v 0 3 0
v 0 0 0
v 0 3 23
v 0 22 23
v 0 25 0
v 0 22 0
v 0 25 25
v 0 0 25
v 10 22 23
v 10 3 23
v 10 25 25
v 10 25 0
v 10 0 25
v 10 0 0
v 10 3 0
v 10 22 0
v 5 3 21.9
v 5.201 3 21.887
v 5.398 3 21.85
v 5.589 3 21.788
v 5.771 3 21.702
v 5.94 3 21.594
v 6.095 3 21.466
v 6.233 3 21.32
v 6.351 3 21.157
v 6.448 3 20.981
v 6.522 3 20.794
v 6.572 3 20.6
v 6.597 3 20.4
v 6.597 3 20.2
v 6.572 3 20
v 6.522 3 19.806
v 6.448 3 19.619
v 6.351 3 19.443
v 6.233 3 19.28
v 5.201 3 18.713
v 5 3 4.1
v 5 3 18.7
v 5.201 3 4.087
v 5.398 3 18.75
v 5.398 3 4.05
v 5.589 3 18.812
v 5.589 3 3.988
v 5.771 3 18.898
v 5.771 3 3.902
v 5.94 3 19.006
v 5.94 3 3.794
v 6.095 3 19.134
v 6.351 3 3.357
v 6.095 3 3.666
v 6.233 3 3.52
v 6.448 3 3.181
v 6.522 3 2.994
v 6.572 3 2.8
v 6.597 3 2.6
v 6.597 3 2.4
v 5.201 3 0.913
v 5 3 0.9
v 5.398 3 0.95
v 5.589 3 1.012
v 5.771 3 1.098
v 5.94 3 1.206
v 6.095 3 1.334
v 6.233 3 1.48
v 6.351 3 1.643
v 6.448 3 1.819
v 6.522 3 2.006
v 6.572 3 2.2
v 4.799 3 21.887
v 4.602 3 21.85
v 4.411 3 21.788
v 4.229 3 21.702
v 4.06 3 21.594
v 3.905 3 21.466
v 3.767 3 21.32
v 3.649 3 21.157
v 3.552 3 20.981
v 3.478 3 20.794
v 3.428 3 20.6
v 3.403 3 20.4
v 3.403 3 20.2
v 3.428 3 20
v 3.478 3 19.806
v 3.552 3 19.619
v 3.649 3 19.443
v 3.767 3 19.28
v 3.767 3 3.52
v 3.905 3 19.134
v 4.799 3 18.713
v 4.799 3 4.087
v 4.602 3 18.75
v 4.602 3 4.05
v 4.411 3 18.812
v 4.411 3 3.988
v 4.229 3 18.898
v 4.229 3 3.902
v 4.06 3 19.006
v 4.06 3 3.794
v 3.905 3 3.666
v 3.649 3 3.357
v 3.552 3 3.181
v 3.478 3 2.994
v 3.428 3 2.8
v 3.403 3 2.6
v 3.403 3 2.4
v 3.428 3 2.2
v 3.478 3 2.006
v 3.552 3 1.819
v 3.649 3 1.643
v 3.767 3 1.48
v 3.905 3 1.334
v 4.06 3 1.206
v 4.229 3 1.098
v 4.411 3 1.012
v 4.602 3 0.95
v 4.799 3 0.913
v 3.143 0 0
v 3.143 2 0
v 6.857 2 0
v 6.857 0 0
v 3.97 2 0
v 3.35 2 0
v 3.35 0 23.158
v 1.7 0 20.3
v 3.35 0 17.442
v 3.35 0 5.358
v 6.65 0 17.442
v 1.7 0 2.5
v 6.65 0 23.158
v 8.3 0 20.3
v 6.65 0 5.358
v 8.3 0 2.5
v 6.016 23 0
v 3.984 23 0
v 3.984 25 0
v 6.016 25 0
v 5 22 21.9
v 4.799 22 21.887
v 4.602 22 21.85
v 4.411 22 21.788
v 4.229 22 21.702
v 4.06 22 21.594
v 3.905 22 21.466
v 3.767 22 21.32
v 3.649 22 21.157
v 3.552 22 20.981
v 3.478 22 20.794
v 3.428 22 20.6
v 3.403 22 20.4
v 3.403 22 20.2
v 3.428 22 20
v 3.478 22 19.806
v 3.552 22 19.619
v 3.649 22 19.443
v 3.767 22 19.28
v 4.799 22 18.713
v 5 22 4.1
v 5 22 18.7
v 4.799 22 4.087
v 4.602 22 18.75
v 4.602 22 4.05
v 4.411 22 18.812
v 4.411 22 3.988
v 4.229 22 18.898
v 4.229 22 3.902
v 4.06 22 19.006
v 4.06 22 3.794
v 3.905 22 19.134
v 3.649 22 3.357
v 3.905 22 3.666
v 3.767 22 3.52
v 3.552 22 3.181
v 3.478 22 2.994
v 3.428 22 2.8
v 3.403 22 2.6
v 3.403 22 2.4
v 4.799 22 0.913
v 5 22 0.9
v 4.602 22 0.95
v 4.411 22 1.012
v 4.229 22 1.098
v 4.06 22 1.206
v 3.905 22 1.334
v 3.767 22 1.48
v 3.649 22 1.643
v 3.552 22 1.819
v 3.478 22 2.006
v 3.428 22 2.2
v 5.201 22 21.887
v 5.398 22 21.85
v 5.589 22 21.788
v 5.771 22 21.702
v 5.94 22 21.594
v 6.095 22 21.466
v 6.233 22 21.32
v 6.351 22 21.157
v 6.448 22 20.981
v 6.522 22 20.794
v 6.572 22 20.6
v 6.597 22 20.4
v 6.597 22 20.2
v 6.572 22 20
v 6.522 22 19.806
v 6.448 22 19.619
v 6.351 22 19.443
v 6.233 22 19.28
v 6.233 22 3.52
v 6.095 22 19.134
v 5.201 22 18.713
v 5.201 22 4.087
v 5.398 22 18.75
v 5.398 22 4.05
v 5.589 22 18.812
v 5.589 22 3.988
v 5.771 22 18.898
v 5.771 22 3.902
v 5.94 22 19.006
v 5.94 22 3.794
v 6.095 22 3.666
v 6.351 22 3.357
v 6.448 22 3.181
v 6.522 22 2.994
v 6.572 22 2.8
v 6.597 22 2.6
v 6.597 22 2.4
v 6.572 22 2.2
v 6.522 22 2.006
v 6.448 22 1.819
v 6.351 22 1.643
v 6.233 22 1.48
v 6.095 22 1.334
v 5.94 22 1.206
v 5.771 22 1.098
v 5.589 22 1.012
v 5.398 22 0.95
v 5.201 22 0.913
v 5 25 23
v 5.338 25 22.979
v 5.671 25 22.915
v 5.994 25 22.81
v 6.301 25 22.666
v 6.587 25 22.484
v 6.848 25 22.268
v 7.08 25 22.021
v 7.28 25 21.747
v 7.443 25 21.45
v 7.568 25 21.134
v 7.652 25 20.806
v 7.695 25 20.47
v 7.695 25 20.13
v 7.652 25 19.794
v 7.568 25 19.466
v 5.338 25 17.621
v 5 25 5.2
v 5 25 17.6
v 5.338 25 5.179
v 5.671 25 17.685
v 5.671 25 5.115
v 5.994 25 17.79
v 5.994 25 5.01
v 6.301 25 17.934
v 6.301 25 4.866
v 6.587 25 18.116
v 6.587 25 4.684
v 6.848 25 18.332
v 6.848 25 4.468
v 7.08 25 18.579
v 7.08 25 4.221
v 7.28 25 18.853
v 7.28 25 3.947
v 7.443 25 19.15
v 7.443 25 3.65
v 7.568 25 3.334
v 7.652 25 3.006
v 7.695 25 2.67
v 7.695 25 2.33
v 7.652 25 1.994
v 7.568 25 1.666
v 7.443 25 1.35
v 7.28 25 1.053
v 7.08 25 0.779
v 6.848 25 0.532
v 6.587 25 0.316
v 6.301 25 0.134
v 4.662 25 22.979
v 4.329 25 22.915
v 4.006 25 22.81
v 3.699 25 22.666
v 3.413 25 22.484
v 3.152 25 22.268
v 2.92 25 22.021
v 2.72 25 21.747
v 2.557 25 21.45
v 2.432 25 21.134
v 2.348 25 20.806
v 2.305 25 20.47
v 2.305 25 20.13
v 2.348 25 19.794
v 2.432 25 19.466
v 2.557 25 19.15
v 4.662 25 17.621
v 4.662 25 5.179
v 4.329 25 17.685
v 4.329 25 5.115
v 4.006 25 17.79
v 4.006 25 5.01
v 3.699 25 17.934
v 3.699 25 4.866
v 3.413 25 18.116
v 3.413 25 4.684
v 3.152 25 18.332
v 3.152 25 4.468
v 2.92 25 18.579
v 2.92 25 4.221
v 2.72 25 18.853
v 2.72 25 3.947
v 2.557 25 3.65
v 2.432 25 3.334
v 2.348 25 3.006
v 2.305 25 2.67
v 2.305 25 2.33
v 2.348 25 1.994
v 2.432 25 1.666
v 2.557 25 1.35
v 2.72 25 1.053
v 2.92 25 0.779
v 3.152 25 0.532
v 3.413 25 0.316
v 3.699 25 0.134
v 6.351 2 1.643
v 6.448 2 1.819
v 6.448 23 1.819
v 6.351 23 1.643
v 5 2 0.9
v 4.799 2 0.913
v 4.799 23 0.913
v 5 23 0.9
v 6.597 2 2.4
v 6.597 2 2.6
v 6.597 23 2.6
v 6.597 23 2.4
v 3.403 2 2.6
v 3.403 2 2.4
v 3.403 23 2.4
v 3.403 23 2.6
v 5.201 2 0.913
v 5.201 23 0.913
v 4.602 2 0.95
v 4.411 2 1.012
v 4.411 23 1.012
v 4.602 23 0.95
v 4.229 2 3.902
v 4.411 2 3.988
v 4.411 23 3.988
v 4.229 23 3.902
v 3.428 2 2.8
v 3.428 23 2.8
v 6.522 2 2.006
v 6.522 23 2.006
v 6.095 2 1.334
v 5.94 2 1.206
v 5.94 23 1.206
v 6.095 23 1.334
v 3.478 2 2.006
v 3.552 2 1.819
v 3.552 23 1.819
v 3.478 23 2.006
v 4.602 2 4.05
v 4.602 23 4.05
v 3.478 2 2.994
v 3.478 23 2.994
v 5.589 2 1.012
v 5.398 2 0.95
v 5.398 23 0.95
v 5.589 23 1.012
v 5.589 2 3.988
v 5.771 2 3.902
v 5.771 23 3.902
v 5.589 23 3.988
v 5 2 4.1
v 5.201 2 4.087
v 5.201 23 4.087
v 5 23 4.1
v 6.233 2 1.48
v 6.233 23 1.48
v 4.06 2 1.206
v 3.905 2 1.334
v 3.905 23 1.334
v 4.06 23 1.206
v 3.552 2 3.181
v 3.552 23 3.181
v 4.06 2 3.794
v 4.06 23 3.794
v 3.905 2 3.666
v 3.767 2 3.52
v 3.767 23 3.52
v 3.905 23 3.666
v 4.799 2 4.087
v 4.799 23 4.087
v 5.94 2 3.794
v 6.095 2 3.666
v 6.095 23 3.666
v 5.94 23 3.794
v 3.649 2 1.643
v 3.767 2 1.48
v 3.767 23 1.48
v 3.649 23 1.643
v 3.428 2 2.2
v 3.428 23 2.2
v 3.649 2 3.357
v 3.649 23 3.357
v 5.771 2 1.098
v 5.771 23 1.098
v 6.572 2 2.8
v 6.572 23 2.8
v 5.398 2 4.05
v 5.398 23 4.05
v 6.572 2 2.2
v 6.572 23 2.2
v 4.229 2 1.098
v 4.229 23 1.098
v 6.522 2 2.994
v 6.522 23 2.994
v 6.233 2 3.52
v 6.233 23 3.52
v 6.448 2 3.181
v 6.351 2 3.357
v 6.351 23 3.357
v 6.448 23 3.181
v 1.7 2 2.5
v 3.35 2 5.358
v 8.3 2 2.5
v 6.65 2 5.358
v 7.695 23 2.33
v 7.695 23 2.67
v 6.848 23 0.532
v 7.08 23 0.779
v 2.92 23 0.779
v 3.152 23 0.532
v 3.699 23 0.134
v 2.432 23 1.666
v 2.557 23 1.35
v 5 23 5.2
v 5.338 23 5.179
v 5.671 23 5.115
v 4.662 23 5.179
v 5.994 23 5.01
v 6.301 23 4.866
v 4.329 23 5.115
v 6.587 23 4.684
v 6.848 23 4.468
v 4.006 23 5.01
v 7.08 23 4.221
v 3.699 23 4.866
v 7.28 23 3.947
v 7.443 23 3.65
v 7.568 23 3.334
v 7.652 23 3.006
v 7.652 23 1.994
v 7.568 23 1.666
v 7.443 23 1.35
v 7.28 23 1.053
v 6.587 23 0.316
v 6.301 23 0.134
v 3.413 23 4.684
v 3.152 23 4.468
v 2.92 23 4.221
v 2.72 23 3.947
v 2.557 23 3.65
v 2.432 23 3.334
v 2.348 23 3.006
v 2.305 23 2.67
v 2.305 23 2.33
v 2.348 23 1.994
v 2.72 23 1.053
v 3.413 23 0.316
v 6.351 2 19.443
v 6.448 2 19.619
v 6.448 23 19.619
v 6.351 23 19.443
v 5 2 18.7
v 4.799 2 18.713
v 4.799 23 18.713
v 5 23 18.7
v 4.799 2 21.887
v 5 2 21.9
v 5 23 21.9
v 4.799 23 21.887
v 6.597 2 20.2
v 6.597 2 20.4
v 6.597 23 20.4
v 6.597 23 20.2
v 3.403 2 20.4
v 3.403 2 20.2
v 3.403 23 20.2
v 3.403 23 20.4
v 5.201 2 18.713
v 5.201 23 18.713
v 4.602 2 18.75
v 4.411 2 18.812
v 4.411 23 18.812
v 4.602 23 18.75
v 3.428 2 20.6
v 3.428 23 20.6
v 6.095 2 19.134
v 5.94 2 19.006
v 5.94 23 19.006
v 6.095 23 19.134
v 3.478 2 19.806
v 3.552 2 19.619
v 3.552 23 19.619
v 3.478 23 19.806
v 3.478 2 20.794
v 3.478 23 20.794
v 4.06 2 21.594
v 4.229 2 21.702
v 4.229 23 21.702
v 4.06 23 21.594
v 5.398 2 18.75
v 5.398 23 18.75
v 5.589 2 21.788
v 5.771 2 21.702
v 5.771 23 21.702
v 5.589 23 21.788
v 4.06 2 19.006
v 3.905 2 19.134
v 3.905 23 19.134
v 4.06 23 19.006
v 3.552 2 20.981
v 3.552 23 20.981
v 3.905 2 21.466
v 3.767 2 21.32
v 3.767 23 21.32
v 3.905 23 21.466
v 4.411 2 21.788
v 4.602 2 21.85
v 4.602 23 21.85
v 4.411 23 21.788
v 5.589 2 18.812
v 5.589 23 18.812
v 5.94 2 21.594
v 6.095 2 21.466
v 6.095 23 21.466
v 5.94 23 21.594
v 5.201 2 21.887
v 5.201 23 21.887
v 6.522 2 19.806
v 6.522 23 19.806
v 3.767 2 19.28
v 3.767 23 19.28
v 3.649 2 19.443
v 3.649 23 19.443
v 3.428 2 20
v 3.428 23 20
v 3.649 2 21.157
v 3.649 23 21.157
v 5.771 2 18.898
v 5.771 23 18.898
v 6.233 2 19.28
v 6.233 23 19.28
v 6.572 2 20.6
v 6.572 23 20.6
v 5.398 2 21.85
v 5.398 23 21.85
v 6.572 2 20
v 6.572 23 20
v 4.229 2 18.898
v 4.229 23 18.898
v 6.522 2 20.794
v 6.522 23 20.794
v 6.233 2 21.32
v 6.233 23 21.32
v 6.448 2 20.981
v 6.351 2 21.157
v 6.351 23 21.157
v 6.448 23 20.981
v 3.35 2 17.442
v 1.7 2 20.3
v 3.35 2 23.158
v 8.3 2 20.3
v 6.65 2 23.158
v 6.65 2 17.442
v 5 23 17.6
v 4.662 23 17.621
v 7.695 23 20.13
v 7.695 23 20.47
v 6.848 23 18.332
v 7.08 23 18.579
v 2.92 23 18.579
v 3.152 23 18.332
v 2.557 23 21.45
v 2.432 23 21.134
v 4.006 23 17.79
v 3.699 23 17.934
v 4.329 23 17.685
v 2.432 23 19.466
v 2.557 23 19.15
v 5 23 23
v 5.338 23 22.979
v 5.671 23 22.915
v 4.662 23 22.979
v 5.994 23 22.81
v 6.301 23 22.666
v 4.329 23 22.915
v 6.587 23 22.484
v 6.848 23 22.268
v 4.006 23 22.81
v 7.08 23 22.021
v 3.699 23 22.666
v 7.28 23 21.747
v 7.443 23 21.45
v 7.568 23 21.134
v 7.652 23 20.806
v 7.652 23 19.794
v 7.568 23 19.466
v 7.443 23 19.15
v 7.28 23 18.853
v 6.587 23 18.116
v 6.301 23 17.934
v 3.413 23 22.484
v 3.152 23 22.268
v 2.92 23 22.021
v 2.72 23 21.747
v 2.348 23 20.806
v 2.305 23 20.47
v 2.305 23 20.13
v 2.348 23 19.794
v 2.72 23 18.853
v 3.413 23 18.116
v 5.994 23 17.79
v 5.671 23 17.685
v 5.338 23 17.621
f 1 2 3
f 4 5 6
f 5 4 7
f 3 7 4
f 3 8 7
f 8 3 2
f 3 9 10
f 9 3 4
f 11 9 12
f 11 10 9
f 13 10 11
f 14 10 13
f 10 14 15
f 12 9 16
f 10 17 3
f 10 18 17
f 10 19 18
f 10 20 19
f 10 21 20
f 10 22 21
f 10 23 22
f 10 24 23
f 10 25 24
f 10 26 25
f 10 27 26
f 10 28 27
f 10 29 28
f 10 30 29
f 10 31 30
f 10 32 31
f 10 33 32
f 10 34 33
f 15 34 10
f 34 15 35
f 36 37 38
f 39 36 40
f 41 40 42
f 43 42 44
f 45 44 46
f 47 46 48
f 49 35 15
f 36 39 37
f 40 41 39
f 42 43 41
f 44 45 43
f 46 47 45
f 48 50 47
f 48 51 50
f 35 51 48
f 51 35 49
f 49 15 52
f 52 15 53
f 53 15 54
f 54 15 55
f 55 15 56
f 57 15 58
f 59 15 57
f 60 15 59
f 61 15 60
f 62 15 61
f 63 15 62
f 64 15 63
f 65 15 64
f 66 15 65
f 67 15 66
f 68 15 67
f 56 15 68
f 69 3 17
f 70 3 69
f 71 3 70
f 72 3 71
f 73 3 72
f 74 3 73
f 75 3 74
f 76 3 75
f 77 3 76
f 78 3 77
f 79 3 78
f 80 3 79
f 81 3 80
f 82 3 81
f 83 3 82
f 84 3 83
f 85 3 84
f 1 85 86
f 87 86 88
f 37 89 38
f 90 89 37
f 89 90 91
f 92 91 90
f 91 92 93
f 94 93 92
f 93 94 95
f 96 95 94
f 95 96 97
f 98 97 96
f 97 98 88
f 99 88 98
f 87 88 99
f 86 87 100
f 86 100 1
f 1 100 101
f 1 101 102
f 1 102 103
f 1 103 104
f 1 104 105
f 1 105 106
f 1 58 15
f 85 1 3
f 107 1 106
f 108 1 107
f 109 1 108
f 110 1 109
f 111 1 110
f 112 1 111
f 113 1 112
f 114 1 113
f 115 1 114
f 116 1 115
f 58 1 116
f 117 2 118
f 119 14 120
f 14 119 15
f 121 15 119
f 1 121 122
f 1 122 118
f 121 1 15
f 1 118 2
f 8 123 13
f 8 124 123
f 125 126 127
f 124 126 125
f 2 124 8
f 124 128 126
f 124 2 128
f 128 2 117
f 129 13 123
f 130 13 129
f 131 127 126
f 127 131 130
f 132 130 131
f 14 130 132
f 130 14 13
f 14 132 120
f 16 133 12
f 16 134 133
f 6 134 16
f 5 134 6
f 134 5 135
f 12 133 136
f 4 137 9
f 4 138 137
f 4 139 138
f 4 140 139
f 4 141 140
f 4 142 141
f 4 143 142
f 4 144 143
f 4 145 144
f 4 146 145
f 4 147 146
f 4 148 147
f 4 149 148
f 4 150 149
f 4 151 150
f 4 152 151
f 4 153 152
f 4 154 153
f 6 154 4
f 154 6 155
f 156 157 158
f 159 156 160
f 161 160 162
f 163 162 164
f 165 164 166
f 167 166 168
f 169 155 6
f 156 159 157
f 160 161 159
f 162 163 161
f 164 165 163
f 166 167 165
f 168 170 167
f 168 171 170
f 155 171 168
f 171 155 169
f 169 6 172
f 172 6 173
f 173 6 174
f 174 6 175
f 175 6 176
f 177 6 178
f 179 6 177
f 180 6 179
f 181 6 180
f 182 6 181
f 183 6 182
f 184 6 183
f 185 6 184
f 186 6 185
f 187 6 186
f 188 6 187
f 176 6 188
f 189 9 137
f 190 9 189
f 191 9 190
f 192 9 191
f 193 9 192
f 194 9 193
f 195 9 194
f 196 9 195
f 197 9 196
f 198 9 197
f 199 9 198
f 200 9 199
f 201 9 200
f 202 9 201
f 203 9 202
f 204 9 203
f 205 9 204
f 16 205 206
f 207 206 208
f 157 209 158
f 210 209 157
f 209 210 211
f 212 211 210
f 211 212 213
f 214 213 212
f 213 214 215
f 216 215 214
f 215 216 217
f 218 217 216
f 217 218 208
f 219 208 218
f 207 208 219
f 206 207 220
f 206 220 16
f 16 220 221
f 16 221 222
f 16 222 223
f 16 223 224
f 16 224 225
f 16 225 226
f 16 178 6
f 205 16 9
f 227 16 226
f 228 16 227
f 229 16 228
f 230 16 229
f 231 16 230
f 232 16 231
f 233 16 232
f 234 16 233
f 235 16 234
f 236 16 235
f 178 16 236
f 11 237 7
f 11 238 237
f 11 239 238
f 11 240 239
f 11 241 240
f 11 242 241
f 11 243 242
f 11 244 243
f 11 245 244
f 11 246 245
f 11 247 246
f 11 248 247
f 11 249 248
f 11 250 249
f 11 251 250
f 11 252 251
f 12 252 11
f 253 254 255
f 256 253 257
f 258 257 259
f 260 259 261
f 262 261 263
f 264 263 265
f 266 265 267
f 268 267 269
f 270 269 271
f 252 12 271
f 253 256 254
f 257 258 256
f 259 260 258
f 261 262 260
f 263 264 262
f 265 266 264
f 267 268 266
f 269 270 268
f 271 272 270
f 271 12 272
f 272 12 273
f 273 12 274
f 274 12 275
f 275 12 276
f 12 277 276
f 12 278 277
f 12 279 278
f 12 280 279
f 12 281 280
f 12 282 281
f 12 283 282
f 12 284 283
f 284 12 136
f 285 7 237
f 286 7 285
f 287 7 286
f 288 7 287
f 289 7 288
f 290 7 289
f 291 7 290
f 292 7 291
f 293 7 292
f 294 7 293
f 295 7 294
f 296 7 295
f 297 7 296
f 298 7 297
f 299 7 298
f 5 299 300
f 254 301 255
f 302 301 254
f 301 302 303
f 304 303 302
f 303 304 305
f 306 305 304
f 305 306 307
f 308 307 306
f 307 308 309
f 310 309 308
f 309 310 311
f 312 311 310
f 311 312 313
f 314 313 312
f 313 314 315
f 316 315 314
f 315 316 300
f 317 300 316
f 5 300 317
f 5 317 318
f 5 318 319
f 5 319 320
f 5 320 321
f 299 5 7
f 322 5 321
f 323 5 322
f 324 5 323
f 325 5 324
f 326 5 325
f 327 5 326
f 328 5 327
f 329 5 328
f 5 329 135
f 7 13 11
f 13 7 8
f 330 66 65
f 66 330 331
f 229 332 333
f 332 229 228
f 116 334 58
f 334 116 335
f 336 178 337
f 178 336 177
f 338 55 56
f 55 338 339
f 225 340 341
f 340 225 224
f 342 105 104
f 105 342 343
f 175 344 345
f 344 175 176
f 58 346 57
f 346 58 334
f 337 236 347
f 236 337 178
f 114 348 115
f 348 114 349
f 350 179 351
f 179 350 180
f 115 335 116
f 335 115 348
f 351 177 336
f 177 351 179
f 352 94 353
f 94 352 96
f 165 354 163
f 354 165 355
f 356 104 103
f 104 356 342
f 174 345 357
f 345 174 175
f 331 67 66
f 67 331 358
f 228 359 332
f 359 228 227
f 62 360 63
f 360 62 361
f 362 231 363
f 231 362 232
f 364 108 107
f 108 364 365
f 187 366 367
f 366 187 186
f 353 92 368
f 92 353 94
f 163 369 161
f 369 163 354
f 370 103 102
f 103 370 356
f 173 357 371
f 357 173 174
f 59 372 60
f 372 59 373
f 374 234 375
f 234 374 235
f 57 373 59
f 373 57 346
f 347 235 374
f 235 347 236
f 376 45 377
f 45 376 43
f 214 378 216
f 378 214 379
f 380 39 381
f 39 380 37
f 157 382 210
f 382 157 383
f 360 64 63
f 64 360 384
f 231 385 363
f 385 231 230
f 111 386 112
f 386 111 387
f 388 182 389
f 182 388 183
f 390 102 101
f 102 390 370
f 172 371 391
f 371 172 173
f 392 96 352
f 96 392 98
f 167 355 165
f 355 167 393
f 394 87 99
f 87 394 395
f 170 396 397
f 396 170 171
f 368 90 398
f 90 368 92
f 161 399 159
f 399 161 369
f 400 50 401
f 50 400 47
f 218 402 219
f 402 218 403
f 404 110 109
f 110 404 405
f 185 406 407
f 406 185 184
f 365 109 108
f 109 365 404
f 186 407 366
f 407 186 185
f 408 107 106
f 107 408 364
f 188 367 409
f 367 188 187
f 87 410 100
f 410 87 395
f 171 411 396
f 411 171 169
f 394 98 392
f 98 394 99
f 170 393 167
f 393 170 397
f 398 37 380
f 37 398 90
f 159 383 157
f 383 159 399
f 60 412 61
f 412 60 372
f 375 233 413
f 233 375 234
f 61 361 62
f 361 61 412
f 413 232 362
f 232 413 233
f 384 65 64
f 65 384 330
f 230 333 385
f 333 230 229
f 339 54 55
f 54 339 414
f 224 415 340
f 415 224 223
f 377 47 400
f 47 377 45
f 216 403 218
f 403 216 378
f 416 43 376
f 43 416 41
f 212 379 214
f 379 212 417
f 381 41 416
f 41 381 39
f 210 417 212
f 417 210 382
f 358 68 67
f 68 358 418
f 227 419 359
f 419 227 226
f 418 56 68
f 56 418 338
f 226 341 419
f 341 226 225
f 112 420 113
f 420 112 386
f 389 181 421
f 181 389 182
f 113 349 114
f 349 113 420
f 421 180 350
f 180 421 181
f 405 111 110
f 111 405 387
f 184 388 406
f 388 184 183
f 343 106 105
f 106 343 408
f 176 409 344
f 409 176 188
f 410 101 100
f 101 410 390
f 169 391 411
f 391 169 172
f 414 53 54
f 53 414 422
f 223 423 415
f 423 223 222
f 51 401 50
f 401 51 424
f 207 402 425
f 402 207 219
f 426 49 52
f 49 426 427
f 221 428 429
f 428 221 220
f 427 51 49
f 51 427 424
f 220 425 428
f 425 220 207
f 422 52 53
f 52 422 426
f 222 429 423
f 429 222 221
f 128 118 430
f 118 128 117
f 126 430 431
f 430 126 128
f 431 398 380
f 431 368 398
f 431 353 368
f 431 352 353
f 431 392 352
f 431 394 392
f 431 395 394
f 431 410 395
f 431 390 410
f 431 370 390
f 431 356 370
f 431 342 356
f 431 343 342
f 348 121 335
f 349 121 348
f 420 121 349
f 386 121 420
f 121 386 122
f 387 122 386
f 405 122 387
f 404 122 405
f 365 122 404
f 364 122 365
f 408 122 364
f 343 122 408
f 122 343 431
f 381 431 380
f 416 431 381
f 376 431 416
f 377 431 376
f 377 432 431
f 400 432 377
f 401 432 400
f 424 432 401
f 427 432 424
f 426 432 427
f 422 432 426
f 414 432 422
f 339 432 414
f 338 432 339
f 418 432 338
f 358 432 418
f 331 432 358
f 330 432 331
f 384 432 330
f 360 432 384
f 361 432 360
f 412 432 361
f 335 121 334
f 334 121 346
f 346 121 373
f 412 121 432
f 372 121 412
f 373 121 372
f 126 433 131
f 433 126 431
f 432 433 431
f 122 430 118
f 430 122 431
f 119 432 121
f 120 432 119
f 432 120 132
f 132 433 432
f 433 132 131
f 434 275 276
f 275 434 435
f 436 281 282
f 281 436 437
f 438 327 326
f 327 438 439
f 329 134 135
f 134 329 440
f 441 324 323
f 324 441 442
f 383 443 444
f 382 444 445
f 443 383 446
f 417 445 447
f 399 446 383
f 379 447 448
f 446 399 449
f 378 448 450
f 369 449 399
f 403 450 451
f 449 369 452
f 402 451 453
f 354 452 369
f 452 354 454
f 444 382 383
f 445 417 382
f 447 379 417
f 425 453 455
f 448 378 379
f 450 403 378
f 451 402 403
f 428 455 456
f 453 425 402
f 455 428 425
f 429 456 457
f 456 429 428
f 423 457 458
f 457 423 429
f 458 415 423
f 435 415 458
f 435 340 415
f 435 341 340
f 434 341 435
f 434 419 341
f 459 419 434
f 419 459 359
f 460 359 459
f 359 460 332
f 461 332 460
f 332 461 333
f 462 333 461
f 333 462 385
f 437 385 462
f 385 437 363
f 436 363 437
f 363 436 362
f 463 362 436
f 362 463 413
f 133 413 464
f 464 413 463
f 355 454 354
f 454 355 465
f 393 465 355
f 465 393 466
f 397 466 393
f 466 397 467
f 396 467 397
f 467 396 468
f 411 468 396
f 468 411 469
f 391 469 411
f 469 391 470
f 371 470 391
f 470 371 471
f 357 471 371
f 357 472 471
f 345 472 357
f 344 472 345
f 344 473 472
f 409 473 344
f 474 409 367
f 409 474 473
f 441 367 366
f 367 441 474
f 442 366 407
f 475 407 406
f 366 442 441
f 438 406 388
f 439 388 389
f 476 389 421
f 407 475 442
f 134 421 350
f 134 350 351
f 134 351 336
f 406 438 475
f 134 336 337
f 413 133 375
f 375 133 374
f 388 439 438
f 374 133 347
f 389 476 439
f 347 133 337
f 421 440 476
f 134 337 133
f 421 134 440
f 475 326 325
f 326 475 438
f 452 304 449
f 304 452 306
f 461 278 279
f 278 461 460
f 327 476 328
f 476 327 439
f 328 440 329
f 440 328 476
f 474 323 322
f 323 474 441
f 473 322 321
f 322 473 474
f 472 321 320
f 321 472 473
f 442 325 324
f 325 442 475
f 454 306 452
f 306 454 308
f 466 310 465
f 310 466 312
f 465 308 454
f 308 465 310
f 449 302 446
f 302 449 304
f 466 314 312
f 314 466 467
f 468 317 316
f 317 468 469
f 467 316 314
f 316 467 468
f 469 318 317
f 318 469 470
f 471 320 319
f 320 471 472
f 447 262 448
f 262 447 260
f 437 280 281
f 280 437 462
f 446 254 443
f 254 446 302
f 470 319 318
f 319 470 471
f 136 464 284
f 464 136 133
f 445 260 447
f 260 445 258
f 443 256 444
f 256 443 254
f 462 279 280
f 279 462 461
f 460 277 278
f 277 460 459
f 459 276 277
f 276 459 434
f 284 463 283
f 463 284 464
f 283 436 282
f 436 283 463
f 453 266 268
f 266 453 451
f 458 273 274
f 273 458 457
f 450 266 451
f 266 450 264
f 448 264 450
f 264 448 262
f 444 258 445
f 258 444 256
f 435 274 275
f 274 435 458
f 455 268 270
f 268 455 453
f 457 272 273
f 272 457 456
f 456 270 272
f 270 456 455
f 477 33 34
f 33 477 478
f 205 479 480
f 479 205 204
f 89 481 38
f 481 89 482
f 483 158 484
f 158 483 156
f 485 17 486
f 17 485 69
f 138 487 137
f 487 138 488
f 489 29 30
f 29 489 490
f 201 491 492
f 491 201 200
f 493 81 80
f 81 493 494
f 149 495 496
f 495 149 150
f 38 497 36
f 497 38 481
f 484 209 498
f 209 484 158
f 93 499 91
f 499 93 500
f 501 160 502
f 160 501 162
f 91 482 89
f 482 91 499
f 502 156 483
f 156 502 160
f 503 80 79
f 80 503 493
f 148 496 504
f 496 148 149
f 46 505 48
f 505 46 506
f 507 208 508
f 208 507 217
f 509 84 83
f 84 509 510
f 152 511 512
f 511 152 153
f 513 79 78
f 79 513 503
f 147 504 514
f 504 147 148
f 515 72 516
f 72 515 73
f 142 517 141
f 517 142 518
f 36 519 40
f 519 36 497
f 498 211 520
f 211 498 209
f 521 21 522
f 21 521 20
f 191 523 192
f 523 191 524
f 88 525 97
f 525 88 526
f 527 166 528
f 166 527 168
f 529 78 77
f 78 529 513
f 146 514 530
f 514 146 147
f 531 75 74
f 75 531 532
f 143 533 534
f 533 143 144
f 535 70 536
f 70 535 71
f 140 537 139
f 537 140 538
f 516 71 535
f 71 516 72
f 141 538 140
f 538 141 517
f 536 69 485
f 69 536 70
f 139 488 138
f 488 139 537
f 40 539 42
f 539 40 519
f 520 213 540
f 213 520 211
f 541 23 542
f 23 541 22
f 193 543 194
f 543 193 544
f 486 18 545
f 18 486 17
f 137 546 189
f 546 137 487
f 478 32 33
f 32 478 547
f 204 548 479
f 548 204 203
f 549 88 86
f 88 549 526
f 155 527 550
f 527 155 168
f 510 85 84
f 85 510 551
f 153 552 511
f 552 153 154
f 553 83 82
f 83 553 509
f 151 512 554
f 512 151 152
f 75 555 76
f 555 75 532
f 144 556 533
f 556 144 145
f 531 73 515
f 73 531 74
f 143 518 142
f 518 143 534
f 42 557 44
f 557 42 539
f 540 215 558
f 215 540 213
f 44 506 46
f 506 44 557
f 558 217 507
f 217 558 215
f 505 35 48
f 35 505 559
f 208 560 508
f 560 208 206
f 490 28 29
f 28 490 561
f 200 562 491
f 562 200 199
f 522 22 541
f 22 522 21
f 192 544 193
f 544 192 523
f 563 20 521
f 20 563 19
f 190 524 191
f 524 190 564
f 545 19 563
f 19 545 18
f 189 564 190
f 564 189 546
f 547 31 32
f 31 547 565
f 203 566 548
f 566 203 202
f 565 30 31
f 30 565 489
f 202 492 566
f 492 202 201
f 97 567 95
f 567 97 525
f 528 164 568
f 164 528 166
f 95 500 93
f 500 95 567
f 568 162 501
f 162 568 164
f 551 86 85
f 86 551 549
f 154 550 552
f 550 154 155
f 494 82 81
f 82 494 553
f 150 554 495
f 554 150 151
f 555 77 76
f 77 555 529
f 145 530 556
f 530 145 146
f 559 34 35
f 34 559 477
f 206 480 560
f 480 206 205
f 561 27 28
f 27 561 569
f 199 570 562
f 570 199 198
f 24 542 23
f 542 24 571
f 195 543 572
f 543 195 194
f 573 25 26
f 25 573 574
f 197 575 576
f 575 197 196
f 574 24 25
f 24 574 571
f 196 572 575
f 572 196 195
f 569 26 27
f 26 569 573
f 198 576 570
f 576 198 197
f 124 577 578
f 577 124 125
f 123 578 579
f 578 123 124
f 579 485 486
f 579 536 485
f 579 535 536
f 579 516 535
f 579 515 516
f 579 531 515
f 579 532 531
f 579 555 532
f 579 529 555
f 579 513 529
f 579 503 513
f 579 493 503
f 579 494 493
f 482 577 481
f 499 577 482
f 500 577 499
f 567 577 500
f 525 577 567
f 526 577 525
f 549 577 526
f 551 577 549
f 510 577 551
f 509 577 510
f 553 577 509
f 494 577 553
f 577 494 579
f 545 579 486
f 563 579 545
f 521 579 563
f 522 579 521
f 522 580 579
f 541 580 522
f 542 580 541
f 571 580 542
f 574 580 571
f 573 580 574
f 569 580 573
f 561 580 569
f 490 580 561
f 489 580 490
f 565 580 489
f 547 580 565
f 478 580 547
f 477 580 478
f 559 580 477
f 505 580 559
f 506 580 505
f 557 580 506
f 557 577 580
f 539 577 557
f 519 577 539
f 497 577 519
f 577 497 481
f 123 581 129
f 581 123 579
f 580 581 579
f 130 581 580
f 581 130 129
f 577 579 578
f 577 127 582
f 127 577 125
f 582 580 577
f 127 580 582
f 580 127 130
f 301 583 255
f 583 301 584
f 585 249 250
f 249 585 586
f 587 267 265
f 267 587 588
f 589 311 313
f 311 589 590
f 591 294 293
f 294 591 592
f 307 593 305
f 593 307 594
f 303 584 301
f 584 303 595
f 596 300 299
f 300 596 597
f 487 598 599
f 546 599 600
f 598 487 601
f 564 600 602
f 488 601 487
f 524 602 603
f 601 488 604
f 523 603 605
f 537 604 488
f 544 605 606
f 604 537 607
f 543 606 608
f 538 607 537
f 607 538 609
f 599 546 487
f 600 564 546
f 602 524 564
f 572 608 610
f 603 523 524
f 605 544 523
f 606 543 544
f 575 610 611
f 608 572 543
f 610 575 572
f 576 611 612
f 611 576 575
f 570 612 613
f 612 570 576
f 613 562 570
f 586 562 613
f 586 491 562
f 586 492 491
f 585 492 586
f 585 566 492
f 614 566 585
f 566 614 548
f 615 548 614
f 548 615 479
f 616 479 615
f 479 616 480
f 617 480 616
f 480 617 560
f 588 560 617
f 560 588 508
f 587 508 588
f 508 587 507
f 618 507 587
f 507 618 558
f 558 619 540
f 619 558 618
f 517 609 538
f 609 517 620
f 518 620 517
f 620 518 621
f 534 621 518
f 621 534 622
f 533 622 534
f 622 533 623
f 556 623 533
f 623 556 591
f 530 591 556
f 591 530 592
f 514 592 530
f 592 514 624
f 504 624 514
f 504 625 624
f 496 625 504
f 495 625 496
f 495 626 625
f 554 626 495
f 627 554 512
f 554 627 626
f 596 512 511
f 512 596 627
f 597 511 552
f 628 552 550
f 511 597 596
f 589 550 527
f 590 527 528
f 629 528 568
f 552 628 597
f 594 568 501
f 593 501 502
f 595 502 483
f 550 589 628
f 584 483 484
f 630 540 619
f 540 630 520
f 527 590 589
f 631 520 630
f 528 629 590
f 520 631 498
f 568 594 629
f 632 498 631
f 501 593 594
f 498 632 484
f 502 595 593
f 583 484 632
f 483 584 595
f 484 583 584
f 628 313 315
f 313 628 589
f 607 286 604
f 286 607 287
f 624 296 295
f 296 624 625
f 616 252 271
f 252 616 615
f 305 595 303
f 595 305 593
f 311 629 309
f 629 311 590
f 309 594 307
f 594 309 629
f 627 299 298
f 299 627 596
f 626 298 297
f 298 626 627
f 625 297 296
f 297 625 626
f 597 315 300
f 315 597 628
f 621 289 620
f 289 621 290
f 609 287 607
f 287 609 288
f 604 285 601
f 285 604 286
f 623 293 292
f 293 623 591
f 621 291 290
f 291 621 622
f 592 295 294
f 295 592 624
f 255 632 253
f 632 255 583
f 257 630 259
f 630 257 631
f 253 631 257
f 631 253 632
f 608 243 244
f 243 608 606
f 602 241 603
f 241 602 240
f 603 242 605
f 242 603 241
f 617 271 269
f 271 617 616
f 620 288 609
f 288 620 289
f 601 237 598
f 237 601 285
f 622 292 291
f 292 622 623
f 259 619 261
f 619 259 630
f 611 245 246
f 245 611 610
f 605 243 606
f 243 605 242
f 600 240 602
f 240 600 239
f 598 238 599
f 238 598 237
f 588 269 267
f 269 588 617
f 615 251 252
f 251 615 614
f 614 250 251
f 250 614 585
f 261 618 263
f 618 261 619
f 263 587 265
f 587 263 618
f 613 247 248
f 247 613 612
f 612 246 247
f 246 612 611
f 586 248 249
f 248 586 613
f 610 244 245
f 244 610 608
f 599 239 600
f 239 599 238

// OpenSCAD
// [width,depth,height]
m_depth = 19;
m_height = 23;
m_length1 = 10; //36.8;
w=3;

difference() {
    union() {
        cube([10,w,m_height]);
        translate([0,w+m_depth,0]) cube([10,w,m_height]);
        //translate([0,0,m_height]) cube([m_length1,4+m_depth+4,1]);
        translate([0,0,m_height]) cube([10,w+m_depth+w,2]);
    }
    
    //whole 1
    h1 = 1.5+1;
    c_len = w+m_depth+w+2;
    translate([5,-1,h1]) rotate([0,90,90]) cylinder($fn=50, h=c_len,r=1.6);
    translate([5,-1,h1]) rotate([0,30,0]) rotate([0,90,90]) cylinder($fn=6, h=3,r=3.3);
    translate([5,c_len-4,h1]) rotate([0,90,90]) cylinder($fn=50, h=3,r=2.7);
    
    h2 = m_height-1.2-1.5;
    //whole 2
    translate([5,-1,h2]) rotate([0,90,90]) cylinder($fn=50, h=c_len,r=1.6);
    translate([5,-1,h2]) rotate([0,30,0]) rotate([0,90,90]) cylinder($fn=6, h=3,r=3.3);
    translate([5,c_len-4, h2]) rotate([0,90,90]) cylinder($fn=50, h=3,r=2.7);
    
    //translate([10,0,m_height]) cube([m_length1-10,4,1]);
    //translate([10,4+m_depth,m_height]) cube([m_length1-10,4,1]);
}
